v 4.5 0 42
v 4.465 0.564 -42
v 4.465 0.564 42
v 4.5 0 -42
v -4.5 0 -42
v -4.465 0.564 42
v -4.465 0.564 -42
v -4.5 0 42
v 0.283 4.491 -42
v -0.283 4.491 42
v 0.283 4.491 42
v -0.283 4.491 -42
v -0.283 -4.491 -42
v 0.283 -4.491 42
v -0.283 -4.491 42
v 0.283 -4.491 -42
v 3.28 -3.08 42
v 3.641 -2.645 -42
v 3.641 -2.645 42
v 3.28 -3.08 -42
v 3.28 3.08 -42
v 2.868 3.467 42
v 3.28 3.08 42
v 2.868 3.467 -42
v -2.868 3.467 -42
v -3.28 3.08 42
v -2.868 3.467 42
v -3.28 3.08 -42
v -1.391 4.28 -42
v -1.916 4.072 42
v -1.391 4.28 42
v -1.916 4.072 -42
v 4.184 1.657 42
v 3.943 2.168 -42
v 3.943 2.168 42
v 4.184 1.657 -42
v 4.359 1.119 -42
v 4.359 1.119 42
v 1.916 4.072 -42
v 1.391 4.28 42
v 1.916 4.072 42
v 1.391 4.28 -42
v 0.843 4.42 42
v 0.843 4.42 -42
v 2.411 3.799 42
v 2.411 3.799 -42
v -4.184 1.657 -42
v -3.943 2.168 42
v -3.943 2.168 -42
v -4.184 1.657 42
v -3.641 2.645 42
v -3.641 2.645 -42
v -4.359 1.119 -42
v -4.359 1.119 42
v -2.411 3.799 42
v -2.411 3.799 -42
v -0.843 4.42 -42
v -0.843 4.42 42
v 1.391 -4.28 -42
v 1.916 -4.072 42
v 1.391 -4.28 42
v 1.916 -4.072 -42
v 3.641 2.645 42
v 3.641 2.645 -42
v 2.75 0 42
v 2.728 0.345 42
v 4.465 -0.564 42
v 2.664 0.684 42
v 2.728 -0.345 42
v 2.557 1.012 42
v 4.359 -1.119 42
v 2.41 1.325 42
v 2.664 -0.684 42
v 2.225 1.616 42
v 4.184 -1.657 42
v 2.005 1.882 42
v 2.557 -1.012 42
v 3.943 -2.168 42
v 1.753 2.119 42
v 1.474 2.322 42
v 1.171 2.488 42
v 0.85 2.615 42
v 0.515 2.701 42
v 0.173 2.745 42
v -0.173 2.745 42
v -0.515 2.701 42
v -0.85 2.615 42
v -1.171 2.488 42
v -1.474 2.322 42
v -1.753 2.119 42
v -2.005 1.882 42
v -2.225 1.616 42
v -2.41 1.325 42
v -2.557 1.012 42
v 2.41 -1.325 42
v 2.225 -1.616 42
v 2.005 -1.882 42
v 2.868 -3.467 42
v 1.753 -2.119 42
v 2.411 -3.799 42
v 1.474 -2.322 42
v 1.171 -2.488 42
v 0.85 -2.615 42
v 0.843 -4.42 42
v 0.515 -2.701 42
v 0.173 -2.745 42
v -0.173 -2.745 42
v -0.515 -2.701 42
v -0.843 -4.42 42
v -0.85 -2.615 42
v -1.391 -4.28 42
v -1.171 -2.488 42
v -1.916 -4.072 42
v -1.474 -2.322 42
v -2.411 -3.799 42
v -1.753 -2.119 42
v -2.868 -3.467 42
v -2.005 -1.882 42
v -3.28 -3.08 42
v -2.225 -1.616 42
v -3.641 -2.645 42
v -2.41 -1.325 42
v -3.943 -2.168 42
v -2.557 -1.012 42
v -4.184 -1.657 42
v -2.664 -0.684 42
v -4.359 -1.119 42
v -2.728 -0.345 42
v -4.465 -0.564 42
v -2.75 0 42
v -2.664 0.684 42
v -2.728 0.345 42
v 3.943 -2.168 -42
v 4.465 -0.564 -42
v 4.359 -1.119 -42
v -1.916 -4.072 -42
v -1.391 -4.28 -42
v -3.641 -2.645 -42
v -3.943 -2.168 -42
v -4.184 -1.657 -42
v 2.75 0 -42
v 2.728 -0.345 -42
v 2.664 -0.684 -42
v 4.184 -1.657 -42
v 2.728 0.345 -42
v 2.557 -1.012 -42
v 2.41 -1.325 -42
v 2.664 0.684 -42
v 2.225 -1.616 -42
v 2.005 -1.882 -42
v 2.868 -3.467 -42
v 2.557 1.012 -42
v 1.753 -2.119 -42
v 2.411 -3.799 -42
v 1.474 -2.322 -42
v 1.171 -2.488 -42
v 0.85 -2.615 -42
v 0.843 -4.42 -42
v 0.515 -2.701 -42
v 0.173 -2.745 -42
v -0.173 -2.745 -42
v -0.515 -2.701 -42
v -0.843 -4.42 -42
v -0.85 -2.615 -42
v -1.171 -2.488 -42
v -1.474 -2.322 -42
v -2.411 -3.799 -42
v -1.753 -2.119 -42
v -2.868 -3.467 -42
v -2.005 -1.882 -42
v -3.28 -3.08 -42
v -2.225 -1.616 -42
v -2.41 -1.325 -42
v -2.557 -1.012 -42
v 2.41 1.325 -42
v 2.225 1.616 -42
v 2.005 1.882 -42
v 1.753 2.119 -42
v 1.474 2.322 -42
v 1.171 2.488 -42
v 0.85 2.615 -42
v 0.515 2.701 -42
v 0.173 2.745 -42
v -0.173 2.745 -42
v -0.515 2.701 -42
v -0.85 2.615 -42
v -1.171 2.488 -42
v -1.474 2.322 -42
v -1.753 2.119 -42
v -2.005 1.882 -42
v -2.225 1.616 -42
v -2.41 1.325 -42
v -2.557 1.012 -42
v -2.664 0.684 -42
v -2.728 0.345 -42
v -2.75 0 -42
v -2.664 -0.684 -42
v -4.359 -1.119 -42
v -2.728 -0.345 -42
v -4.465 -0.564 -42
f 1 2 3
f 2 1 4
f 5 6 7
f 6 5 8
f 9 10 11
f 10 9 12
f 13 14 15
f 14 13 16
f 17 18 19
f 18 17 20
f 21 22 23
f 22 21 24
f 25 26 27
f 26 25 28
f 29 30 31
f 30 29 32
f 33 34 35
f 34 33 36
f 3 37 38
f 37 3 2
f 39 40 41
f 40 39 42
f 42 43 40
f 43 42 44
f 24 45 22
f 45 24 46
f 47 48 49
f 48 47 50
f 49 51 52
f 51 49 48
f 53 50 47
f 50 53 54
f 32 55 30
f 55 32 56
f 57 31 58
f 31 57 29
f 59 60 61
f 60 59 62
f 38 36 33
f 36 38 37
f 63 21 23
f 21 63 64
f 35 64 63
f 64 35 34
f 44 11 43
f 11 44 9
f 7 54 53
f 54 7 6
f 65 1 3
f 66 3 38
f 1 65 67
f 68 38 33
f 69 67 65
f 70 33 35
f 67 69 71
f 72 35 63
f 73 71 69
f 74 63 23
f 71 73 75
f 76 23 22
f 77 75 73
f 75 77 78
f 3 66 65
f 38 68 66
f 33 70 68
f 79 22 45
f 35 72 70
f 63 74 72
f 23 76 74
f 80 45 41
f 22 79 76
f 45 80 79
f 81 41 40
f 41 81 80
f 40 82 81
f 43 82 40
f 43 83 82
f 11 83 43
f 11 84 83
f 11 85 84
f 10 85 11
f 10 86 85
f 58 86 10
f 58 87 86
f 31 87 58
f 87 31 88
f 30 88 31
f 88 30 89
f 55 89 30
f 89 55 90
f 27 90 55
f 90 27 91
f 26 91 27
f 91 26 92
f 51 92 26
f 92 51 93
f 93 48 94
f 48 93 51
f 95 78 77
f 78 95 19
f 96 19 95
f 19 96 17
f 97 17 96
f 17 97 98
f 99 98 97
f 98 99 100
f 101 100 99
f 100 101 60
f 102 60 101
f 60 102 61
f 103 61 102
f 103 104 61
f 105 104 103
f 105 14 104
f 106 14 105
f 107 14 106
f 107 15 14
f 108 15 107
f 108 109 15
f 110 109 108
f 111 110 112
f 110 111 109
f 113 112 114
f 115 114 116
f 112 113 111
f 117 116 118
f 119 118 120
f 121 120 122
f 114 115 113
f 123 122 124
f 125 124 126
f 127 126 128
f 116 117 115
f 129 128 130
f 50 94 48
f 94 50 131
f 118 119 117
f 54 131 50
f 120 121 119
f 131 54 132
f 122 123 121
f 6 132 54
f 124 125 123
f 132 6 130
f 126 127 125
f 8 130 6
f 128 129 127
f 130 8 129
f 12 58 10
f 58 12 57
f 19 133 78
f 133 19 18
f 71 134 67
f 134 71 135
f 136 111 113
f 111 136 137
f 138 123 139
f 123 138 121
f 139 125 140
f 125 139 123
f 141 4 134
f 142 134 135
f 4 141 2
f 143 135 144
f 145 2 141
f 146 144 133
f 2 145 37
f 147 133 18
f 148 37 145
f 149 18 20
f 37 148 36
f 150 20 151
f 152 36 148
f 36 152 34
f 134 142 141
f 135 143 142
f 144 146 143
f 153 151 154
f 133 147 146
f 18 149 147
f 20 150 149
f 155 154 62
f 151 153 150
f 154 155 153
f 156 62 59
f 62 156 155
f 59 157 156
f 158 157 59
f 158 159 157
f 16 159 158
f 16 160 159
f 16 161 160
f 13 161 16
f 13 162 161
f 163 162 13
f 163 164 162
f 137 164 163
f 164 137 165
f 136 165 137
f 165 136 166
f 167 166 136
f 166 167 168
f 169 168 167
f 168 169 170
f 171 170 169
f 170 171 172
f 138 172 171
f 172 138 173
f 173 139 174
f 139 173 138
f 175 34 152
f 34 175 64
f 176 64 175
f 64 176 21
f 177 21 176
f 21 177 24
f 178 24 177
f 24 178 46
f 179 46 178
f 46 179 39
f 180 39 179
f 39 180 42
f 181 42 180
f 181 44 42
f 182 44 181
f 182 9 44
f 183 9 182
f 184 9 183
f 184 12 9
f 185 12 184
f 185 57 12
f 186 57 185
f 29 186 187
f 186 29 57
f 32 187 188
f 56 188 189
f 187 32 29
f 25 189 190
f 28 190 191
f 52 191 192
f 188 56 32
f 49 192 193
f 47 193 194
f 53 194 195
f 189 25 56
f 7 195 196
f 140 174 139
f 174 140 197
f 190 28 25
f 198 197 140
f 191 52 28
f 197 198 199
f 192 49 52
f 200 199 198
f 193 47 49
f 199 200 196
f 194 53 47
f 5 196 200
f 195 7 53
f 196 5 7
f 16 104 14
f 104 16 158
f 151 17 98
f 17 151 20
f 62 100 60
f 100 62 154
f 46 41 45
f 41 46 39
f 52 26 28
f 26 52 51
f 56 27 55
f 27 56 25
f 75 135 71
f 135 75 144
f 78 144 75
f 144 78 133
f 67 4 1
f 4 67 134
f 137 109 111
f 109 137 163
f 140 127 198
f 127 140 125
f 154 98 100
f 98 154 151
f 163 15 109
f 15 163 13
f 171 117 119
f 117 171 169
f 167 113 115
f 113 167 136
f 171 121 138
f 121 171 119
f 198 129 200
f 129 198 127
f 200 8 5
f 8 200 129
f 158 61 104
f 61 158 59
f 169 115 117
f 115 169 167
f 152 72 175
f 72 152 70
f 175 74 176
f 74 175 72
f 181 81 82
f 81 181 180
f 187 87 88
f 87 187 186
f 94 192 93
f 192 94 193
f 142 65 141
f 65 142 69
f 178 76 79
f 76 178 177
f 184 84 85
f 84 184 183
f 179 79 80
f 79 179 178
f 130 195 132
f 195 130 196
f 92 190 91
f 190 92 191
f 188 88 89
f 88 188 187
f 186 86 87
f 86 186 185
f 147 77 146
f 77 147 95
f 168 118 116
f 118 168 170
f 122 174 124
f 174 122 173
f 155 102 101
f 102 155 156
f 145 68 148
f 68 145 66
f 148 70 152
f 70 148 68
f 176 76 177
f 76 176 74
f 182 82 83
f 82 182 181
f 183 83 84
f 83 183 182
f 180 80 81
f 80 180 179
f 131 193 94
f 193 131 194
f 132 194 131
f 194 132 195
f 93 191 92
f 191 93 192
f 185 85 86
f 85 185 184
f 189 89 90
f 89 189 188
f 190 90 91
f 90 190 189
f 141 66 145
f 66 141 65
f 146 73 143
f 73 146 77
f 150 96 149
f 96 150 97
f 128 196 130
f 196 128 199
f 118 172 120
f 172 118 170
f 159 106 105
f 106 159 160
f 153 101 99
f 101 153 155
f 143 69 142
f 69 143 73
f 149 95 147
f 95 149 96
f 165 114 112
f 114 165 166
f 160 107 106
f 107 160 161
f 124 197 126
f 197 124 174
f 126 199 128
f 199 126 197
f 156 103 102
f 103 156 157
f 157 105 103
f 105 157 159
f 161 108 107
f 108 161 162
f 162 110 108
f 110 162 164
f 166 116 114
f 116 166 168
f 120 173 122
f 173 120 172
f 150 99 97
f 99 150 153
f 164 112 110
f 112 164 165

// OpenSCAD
$fn = 50;


difference() {
	union() {
		translate(v = [0, 0, -42.0000000000]) {
			cylinder(h = 84, r = 4.5000000000);
		}
	}
	union() {
		translate(v = [0, 0, -100.0000000000]) {
			cylinder(h = 200, r = 2.7500000000);
		}
	}
}
